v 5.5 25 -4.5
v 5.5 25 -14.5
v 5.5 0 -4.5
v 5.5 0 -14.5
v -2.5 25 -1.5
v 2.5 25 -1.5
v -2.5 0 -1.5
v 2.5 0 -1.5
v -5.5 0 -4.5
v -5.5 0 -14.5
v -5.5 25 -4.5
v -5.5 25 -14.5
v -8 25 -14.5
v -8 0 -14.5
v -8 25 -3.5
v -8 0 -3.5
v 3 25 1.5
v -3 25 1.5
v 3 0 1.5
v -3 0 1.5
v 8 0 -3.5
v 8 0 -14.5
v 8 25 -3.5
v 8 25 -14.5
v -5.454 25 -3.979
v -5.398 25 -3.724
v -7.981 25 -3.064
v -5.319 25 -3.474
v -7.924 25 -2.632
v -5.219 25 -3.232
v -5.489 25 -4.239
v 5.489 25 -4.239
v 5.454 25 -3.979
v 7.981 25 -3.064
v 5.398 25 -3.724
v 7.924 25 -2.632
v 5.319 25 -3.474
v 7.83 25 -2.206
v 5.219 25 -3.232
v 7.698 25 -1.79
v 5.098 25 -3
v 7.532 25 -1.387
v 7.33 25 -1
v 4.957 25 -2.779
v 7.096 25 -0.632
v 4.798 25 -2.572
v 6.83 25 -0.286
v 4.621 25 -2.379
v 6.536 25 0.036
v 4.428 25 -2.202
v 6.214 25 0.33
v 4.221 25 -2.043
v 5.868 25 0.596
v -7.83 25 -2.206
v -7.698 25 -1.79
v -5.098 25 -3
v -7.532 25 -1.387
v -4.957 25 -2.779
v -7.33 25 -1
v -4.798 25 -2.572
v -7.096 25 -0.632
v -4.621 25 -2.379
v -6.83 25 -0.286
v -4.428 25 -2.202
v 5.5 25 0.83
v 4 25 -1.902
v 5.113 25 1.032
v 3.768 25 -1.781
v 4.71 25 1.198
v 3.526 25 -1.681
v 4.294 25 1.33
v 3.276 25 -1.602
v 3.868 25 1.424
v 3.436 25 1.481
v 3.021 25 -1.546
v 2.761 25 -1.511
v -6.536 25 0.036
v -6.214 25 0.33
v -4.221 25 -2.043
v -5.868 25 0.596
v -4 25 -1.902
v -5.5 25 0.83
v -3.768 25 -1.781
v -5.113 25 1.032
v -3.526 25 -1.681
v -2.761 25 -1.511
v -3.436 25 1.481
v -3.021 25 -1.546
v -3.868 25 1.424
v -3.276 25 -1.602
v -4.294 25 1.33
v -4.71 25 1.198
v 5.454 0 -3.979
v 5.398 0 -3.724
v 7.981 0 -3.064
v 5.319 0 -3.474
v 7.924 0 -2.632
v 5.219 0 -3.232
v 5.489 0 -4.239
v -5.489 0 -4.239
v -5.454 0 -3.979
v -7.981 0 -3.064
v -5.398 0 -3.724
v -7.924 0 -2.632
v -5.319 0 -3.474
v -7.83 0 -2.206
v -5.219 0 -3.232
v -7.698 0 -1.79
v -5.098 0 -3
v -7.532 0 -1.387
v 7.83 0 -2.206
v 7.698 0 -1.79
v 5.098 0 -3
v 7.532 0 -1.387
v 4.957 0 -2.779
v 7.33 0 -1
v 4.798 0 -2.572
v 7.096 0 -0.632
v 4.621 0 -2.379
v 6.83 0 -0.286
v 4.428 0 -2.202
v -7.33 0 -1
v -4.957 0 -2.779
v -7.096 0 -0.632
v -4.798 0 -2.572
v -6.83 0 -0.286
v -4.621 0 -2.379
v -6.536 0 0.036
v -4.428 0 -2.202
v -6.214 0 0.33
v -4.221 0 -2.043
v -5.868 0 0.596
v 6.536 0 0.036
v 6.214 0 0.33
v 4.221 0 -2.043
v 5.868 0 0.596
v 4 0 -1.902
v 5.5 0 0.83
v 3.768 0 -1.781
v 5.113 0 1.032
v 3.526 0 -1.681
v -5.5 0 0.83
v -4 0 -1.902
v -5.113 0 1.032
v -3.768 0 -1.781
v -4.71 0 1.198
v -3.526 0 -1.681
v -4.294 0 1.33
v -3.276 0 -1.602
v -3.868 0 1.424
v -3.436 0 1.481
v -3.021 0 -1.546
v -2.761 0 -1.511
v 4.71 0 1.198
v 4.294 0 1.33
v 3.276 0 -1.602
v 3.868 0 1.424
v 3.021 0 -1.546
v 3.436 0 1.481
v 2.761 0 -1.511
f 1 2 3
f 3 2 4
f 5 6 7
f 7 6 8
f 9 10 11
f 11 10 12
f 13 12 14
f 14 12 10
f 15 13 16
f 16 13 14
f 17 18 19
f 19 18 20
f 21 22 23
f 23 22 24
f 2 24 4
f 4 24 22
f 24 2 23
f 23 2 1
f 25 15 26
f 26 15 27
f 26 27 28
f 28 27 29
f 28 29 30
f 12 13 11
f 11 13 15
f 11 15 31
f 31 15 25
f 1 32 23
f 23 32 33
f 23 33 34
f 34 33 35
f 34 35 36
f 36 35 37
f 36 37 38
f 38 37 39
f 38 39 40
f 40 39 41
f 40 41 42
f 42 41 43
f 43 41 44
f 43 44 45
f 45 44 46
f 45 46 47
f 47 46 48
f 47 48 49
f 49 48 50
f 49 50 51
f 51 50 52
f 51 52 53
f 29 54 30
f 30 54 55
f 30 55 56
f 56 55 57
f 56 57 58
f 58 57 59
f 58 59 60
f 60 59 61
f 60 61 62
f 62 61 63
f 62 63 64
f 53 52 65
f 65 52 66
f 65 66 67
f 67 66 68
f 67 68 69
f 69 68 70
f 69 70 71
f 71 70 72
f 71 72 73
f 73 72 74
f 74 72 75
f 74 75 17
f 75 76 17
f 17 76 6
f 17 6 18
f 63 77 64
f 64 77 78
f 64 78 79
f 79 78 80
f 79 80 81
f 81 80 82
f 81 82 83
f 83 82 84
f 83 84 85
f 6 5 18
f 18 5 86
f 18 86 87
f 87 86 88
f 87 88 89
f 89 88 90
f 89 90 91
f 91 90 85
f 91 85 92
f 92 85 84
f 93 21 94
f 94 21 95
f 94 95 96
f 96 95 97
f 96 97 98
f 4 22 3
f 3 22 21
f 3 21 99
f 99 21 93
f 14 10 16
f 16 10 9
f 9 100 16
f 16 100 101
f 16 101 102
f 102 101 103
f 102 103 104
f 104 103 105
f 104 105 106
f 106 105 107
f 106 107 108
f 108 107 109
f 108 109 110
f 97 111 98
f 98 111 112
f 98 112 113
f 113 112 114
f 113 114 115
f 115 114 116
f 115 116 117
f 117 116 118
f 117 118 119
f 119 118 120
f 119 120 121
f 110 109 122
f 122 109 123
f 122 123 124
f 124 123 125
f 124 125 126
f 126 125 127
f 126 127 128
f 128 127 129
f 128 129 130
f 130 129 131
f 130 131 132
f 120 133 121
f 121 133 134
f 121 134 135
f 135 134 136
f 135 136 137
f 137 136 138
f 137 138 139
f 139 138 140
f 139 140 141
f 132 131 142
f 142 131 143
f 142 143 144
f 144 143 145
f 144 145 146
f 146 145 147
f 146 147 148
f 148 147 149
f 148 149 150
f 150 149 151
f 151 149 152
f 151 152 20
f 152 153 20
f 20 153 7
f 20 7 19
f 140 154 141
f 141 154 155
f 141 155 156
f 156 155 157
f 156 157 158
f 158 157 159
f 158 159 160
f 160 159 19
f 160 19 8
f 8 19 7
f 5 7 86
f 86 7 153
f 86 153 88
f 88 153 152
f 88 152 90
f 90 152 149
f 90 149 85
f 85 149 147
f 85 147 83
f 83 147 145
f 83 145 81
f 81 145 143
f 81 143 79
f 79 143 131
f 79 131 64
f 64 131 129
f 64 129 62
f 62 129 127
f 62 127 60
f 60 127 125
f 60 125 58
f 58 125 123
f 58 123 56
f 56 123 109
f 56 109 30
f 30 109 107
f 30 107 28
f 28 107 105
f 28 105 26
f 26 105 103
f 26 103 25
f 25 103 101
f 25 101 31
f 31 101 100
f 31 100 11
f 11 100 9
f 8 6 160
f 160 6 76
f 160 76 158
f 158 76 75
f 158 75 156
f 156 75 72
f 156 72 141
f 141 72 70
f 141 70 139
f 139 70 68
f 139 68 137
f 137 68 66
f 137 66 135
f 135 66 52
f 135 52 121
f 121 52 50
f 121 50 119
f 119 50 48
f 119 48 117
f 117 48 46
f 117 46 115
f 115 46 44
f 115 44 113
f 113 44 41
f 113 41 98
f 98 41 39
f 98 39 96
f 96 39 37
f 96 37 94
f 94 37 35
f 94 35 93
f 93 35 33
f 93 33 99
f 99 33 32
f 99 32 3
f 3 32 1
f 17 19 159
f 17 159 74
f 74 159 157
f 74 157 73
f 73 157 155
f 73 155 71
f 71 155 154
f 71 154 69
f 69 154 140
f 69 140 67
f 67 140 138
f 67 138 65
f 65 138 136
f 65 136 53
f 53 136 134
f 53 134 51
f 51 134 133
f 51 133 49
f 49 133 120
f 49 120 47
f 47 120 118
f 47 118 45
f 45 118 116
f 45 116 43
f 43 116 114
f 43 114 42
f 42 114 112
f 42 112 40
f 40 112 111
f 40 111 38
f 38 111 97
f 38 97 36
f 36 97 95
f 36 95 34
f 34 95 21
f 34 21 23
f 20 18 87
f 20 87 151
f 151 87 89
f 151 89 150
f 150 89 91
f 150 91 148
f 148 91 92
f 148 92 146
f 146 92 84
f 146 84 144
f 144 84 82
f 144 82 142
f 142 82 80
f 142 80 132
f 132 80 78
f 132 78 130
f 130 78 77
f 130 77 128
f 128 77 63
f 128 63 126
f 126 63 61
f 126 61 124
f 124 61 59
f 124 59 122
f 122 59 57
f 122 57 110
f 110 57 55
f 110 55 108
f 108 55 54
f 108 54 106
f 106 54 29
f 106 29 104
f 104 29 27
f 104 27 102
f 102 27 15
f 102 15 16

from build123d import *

# Parameters (mm, degrees)
SKETCH_1_W      = 2.5
SKETCH_1_H      = 13
SKETCH_1_W_2    = 16
SKETCH_1_H_2    = 3
EXTRUDE_1_DEPTH = 25
FILLET_1_R      = 3
FILLET_2_R      = 5


with BuildPart() as part:
    # 草图1 → 凸台-拉伸1 (new body)
    with BuildSketch(Plane(origin=(0, 0, 0), x_dir=(1, 0, 0), z_dir=(0, 1, 0))):
        with Locations((6.75, 8)):
            Rectangle(SKETCH_1_W, SKETCH_1_H)
        Rectangle(SKETCH_1_W_2, SKETCH_1_H_2)
        with Locations((-6.75, 8)):
            Rectangle(SKETCH_1_W, SKETCH_1_H)
    extrude(amount=EXTRUDE_1_DEPTH)

    # 圆角1
    fillet_1_edges = [part.edges().sort_by_distance(p)[0] for p in [
        (-5.5, 12.5, -1.5),
        (5.5, 12.5, -1.5),
    ]]
    fillet(fillet_1_edges, radius=FILLET_1_R)

    # 圆角2
    fillet_2_edges = [part.edges().sort_by_distance(p)[0] for p in [
        (8, 12.5, 1.5),
        (-8, 12.5, 1.5),
    ]]
    fillet(fillet_2_edges, radius=FILLET_2_R)


solid = part.part
